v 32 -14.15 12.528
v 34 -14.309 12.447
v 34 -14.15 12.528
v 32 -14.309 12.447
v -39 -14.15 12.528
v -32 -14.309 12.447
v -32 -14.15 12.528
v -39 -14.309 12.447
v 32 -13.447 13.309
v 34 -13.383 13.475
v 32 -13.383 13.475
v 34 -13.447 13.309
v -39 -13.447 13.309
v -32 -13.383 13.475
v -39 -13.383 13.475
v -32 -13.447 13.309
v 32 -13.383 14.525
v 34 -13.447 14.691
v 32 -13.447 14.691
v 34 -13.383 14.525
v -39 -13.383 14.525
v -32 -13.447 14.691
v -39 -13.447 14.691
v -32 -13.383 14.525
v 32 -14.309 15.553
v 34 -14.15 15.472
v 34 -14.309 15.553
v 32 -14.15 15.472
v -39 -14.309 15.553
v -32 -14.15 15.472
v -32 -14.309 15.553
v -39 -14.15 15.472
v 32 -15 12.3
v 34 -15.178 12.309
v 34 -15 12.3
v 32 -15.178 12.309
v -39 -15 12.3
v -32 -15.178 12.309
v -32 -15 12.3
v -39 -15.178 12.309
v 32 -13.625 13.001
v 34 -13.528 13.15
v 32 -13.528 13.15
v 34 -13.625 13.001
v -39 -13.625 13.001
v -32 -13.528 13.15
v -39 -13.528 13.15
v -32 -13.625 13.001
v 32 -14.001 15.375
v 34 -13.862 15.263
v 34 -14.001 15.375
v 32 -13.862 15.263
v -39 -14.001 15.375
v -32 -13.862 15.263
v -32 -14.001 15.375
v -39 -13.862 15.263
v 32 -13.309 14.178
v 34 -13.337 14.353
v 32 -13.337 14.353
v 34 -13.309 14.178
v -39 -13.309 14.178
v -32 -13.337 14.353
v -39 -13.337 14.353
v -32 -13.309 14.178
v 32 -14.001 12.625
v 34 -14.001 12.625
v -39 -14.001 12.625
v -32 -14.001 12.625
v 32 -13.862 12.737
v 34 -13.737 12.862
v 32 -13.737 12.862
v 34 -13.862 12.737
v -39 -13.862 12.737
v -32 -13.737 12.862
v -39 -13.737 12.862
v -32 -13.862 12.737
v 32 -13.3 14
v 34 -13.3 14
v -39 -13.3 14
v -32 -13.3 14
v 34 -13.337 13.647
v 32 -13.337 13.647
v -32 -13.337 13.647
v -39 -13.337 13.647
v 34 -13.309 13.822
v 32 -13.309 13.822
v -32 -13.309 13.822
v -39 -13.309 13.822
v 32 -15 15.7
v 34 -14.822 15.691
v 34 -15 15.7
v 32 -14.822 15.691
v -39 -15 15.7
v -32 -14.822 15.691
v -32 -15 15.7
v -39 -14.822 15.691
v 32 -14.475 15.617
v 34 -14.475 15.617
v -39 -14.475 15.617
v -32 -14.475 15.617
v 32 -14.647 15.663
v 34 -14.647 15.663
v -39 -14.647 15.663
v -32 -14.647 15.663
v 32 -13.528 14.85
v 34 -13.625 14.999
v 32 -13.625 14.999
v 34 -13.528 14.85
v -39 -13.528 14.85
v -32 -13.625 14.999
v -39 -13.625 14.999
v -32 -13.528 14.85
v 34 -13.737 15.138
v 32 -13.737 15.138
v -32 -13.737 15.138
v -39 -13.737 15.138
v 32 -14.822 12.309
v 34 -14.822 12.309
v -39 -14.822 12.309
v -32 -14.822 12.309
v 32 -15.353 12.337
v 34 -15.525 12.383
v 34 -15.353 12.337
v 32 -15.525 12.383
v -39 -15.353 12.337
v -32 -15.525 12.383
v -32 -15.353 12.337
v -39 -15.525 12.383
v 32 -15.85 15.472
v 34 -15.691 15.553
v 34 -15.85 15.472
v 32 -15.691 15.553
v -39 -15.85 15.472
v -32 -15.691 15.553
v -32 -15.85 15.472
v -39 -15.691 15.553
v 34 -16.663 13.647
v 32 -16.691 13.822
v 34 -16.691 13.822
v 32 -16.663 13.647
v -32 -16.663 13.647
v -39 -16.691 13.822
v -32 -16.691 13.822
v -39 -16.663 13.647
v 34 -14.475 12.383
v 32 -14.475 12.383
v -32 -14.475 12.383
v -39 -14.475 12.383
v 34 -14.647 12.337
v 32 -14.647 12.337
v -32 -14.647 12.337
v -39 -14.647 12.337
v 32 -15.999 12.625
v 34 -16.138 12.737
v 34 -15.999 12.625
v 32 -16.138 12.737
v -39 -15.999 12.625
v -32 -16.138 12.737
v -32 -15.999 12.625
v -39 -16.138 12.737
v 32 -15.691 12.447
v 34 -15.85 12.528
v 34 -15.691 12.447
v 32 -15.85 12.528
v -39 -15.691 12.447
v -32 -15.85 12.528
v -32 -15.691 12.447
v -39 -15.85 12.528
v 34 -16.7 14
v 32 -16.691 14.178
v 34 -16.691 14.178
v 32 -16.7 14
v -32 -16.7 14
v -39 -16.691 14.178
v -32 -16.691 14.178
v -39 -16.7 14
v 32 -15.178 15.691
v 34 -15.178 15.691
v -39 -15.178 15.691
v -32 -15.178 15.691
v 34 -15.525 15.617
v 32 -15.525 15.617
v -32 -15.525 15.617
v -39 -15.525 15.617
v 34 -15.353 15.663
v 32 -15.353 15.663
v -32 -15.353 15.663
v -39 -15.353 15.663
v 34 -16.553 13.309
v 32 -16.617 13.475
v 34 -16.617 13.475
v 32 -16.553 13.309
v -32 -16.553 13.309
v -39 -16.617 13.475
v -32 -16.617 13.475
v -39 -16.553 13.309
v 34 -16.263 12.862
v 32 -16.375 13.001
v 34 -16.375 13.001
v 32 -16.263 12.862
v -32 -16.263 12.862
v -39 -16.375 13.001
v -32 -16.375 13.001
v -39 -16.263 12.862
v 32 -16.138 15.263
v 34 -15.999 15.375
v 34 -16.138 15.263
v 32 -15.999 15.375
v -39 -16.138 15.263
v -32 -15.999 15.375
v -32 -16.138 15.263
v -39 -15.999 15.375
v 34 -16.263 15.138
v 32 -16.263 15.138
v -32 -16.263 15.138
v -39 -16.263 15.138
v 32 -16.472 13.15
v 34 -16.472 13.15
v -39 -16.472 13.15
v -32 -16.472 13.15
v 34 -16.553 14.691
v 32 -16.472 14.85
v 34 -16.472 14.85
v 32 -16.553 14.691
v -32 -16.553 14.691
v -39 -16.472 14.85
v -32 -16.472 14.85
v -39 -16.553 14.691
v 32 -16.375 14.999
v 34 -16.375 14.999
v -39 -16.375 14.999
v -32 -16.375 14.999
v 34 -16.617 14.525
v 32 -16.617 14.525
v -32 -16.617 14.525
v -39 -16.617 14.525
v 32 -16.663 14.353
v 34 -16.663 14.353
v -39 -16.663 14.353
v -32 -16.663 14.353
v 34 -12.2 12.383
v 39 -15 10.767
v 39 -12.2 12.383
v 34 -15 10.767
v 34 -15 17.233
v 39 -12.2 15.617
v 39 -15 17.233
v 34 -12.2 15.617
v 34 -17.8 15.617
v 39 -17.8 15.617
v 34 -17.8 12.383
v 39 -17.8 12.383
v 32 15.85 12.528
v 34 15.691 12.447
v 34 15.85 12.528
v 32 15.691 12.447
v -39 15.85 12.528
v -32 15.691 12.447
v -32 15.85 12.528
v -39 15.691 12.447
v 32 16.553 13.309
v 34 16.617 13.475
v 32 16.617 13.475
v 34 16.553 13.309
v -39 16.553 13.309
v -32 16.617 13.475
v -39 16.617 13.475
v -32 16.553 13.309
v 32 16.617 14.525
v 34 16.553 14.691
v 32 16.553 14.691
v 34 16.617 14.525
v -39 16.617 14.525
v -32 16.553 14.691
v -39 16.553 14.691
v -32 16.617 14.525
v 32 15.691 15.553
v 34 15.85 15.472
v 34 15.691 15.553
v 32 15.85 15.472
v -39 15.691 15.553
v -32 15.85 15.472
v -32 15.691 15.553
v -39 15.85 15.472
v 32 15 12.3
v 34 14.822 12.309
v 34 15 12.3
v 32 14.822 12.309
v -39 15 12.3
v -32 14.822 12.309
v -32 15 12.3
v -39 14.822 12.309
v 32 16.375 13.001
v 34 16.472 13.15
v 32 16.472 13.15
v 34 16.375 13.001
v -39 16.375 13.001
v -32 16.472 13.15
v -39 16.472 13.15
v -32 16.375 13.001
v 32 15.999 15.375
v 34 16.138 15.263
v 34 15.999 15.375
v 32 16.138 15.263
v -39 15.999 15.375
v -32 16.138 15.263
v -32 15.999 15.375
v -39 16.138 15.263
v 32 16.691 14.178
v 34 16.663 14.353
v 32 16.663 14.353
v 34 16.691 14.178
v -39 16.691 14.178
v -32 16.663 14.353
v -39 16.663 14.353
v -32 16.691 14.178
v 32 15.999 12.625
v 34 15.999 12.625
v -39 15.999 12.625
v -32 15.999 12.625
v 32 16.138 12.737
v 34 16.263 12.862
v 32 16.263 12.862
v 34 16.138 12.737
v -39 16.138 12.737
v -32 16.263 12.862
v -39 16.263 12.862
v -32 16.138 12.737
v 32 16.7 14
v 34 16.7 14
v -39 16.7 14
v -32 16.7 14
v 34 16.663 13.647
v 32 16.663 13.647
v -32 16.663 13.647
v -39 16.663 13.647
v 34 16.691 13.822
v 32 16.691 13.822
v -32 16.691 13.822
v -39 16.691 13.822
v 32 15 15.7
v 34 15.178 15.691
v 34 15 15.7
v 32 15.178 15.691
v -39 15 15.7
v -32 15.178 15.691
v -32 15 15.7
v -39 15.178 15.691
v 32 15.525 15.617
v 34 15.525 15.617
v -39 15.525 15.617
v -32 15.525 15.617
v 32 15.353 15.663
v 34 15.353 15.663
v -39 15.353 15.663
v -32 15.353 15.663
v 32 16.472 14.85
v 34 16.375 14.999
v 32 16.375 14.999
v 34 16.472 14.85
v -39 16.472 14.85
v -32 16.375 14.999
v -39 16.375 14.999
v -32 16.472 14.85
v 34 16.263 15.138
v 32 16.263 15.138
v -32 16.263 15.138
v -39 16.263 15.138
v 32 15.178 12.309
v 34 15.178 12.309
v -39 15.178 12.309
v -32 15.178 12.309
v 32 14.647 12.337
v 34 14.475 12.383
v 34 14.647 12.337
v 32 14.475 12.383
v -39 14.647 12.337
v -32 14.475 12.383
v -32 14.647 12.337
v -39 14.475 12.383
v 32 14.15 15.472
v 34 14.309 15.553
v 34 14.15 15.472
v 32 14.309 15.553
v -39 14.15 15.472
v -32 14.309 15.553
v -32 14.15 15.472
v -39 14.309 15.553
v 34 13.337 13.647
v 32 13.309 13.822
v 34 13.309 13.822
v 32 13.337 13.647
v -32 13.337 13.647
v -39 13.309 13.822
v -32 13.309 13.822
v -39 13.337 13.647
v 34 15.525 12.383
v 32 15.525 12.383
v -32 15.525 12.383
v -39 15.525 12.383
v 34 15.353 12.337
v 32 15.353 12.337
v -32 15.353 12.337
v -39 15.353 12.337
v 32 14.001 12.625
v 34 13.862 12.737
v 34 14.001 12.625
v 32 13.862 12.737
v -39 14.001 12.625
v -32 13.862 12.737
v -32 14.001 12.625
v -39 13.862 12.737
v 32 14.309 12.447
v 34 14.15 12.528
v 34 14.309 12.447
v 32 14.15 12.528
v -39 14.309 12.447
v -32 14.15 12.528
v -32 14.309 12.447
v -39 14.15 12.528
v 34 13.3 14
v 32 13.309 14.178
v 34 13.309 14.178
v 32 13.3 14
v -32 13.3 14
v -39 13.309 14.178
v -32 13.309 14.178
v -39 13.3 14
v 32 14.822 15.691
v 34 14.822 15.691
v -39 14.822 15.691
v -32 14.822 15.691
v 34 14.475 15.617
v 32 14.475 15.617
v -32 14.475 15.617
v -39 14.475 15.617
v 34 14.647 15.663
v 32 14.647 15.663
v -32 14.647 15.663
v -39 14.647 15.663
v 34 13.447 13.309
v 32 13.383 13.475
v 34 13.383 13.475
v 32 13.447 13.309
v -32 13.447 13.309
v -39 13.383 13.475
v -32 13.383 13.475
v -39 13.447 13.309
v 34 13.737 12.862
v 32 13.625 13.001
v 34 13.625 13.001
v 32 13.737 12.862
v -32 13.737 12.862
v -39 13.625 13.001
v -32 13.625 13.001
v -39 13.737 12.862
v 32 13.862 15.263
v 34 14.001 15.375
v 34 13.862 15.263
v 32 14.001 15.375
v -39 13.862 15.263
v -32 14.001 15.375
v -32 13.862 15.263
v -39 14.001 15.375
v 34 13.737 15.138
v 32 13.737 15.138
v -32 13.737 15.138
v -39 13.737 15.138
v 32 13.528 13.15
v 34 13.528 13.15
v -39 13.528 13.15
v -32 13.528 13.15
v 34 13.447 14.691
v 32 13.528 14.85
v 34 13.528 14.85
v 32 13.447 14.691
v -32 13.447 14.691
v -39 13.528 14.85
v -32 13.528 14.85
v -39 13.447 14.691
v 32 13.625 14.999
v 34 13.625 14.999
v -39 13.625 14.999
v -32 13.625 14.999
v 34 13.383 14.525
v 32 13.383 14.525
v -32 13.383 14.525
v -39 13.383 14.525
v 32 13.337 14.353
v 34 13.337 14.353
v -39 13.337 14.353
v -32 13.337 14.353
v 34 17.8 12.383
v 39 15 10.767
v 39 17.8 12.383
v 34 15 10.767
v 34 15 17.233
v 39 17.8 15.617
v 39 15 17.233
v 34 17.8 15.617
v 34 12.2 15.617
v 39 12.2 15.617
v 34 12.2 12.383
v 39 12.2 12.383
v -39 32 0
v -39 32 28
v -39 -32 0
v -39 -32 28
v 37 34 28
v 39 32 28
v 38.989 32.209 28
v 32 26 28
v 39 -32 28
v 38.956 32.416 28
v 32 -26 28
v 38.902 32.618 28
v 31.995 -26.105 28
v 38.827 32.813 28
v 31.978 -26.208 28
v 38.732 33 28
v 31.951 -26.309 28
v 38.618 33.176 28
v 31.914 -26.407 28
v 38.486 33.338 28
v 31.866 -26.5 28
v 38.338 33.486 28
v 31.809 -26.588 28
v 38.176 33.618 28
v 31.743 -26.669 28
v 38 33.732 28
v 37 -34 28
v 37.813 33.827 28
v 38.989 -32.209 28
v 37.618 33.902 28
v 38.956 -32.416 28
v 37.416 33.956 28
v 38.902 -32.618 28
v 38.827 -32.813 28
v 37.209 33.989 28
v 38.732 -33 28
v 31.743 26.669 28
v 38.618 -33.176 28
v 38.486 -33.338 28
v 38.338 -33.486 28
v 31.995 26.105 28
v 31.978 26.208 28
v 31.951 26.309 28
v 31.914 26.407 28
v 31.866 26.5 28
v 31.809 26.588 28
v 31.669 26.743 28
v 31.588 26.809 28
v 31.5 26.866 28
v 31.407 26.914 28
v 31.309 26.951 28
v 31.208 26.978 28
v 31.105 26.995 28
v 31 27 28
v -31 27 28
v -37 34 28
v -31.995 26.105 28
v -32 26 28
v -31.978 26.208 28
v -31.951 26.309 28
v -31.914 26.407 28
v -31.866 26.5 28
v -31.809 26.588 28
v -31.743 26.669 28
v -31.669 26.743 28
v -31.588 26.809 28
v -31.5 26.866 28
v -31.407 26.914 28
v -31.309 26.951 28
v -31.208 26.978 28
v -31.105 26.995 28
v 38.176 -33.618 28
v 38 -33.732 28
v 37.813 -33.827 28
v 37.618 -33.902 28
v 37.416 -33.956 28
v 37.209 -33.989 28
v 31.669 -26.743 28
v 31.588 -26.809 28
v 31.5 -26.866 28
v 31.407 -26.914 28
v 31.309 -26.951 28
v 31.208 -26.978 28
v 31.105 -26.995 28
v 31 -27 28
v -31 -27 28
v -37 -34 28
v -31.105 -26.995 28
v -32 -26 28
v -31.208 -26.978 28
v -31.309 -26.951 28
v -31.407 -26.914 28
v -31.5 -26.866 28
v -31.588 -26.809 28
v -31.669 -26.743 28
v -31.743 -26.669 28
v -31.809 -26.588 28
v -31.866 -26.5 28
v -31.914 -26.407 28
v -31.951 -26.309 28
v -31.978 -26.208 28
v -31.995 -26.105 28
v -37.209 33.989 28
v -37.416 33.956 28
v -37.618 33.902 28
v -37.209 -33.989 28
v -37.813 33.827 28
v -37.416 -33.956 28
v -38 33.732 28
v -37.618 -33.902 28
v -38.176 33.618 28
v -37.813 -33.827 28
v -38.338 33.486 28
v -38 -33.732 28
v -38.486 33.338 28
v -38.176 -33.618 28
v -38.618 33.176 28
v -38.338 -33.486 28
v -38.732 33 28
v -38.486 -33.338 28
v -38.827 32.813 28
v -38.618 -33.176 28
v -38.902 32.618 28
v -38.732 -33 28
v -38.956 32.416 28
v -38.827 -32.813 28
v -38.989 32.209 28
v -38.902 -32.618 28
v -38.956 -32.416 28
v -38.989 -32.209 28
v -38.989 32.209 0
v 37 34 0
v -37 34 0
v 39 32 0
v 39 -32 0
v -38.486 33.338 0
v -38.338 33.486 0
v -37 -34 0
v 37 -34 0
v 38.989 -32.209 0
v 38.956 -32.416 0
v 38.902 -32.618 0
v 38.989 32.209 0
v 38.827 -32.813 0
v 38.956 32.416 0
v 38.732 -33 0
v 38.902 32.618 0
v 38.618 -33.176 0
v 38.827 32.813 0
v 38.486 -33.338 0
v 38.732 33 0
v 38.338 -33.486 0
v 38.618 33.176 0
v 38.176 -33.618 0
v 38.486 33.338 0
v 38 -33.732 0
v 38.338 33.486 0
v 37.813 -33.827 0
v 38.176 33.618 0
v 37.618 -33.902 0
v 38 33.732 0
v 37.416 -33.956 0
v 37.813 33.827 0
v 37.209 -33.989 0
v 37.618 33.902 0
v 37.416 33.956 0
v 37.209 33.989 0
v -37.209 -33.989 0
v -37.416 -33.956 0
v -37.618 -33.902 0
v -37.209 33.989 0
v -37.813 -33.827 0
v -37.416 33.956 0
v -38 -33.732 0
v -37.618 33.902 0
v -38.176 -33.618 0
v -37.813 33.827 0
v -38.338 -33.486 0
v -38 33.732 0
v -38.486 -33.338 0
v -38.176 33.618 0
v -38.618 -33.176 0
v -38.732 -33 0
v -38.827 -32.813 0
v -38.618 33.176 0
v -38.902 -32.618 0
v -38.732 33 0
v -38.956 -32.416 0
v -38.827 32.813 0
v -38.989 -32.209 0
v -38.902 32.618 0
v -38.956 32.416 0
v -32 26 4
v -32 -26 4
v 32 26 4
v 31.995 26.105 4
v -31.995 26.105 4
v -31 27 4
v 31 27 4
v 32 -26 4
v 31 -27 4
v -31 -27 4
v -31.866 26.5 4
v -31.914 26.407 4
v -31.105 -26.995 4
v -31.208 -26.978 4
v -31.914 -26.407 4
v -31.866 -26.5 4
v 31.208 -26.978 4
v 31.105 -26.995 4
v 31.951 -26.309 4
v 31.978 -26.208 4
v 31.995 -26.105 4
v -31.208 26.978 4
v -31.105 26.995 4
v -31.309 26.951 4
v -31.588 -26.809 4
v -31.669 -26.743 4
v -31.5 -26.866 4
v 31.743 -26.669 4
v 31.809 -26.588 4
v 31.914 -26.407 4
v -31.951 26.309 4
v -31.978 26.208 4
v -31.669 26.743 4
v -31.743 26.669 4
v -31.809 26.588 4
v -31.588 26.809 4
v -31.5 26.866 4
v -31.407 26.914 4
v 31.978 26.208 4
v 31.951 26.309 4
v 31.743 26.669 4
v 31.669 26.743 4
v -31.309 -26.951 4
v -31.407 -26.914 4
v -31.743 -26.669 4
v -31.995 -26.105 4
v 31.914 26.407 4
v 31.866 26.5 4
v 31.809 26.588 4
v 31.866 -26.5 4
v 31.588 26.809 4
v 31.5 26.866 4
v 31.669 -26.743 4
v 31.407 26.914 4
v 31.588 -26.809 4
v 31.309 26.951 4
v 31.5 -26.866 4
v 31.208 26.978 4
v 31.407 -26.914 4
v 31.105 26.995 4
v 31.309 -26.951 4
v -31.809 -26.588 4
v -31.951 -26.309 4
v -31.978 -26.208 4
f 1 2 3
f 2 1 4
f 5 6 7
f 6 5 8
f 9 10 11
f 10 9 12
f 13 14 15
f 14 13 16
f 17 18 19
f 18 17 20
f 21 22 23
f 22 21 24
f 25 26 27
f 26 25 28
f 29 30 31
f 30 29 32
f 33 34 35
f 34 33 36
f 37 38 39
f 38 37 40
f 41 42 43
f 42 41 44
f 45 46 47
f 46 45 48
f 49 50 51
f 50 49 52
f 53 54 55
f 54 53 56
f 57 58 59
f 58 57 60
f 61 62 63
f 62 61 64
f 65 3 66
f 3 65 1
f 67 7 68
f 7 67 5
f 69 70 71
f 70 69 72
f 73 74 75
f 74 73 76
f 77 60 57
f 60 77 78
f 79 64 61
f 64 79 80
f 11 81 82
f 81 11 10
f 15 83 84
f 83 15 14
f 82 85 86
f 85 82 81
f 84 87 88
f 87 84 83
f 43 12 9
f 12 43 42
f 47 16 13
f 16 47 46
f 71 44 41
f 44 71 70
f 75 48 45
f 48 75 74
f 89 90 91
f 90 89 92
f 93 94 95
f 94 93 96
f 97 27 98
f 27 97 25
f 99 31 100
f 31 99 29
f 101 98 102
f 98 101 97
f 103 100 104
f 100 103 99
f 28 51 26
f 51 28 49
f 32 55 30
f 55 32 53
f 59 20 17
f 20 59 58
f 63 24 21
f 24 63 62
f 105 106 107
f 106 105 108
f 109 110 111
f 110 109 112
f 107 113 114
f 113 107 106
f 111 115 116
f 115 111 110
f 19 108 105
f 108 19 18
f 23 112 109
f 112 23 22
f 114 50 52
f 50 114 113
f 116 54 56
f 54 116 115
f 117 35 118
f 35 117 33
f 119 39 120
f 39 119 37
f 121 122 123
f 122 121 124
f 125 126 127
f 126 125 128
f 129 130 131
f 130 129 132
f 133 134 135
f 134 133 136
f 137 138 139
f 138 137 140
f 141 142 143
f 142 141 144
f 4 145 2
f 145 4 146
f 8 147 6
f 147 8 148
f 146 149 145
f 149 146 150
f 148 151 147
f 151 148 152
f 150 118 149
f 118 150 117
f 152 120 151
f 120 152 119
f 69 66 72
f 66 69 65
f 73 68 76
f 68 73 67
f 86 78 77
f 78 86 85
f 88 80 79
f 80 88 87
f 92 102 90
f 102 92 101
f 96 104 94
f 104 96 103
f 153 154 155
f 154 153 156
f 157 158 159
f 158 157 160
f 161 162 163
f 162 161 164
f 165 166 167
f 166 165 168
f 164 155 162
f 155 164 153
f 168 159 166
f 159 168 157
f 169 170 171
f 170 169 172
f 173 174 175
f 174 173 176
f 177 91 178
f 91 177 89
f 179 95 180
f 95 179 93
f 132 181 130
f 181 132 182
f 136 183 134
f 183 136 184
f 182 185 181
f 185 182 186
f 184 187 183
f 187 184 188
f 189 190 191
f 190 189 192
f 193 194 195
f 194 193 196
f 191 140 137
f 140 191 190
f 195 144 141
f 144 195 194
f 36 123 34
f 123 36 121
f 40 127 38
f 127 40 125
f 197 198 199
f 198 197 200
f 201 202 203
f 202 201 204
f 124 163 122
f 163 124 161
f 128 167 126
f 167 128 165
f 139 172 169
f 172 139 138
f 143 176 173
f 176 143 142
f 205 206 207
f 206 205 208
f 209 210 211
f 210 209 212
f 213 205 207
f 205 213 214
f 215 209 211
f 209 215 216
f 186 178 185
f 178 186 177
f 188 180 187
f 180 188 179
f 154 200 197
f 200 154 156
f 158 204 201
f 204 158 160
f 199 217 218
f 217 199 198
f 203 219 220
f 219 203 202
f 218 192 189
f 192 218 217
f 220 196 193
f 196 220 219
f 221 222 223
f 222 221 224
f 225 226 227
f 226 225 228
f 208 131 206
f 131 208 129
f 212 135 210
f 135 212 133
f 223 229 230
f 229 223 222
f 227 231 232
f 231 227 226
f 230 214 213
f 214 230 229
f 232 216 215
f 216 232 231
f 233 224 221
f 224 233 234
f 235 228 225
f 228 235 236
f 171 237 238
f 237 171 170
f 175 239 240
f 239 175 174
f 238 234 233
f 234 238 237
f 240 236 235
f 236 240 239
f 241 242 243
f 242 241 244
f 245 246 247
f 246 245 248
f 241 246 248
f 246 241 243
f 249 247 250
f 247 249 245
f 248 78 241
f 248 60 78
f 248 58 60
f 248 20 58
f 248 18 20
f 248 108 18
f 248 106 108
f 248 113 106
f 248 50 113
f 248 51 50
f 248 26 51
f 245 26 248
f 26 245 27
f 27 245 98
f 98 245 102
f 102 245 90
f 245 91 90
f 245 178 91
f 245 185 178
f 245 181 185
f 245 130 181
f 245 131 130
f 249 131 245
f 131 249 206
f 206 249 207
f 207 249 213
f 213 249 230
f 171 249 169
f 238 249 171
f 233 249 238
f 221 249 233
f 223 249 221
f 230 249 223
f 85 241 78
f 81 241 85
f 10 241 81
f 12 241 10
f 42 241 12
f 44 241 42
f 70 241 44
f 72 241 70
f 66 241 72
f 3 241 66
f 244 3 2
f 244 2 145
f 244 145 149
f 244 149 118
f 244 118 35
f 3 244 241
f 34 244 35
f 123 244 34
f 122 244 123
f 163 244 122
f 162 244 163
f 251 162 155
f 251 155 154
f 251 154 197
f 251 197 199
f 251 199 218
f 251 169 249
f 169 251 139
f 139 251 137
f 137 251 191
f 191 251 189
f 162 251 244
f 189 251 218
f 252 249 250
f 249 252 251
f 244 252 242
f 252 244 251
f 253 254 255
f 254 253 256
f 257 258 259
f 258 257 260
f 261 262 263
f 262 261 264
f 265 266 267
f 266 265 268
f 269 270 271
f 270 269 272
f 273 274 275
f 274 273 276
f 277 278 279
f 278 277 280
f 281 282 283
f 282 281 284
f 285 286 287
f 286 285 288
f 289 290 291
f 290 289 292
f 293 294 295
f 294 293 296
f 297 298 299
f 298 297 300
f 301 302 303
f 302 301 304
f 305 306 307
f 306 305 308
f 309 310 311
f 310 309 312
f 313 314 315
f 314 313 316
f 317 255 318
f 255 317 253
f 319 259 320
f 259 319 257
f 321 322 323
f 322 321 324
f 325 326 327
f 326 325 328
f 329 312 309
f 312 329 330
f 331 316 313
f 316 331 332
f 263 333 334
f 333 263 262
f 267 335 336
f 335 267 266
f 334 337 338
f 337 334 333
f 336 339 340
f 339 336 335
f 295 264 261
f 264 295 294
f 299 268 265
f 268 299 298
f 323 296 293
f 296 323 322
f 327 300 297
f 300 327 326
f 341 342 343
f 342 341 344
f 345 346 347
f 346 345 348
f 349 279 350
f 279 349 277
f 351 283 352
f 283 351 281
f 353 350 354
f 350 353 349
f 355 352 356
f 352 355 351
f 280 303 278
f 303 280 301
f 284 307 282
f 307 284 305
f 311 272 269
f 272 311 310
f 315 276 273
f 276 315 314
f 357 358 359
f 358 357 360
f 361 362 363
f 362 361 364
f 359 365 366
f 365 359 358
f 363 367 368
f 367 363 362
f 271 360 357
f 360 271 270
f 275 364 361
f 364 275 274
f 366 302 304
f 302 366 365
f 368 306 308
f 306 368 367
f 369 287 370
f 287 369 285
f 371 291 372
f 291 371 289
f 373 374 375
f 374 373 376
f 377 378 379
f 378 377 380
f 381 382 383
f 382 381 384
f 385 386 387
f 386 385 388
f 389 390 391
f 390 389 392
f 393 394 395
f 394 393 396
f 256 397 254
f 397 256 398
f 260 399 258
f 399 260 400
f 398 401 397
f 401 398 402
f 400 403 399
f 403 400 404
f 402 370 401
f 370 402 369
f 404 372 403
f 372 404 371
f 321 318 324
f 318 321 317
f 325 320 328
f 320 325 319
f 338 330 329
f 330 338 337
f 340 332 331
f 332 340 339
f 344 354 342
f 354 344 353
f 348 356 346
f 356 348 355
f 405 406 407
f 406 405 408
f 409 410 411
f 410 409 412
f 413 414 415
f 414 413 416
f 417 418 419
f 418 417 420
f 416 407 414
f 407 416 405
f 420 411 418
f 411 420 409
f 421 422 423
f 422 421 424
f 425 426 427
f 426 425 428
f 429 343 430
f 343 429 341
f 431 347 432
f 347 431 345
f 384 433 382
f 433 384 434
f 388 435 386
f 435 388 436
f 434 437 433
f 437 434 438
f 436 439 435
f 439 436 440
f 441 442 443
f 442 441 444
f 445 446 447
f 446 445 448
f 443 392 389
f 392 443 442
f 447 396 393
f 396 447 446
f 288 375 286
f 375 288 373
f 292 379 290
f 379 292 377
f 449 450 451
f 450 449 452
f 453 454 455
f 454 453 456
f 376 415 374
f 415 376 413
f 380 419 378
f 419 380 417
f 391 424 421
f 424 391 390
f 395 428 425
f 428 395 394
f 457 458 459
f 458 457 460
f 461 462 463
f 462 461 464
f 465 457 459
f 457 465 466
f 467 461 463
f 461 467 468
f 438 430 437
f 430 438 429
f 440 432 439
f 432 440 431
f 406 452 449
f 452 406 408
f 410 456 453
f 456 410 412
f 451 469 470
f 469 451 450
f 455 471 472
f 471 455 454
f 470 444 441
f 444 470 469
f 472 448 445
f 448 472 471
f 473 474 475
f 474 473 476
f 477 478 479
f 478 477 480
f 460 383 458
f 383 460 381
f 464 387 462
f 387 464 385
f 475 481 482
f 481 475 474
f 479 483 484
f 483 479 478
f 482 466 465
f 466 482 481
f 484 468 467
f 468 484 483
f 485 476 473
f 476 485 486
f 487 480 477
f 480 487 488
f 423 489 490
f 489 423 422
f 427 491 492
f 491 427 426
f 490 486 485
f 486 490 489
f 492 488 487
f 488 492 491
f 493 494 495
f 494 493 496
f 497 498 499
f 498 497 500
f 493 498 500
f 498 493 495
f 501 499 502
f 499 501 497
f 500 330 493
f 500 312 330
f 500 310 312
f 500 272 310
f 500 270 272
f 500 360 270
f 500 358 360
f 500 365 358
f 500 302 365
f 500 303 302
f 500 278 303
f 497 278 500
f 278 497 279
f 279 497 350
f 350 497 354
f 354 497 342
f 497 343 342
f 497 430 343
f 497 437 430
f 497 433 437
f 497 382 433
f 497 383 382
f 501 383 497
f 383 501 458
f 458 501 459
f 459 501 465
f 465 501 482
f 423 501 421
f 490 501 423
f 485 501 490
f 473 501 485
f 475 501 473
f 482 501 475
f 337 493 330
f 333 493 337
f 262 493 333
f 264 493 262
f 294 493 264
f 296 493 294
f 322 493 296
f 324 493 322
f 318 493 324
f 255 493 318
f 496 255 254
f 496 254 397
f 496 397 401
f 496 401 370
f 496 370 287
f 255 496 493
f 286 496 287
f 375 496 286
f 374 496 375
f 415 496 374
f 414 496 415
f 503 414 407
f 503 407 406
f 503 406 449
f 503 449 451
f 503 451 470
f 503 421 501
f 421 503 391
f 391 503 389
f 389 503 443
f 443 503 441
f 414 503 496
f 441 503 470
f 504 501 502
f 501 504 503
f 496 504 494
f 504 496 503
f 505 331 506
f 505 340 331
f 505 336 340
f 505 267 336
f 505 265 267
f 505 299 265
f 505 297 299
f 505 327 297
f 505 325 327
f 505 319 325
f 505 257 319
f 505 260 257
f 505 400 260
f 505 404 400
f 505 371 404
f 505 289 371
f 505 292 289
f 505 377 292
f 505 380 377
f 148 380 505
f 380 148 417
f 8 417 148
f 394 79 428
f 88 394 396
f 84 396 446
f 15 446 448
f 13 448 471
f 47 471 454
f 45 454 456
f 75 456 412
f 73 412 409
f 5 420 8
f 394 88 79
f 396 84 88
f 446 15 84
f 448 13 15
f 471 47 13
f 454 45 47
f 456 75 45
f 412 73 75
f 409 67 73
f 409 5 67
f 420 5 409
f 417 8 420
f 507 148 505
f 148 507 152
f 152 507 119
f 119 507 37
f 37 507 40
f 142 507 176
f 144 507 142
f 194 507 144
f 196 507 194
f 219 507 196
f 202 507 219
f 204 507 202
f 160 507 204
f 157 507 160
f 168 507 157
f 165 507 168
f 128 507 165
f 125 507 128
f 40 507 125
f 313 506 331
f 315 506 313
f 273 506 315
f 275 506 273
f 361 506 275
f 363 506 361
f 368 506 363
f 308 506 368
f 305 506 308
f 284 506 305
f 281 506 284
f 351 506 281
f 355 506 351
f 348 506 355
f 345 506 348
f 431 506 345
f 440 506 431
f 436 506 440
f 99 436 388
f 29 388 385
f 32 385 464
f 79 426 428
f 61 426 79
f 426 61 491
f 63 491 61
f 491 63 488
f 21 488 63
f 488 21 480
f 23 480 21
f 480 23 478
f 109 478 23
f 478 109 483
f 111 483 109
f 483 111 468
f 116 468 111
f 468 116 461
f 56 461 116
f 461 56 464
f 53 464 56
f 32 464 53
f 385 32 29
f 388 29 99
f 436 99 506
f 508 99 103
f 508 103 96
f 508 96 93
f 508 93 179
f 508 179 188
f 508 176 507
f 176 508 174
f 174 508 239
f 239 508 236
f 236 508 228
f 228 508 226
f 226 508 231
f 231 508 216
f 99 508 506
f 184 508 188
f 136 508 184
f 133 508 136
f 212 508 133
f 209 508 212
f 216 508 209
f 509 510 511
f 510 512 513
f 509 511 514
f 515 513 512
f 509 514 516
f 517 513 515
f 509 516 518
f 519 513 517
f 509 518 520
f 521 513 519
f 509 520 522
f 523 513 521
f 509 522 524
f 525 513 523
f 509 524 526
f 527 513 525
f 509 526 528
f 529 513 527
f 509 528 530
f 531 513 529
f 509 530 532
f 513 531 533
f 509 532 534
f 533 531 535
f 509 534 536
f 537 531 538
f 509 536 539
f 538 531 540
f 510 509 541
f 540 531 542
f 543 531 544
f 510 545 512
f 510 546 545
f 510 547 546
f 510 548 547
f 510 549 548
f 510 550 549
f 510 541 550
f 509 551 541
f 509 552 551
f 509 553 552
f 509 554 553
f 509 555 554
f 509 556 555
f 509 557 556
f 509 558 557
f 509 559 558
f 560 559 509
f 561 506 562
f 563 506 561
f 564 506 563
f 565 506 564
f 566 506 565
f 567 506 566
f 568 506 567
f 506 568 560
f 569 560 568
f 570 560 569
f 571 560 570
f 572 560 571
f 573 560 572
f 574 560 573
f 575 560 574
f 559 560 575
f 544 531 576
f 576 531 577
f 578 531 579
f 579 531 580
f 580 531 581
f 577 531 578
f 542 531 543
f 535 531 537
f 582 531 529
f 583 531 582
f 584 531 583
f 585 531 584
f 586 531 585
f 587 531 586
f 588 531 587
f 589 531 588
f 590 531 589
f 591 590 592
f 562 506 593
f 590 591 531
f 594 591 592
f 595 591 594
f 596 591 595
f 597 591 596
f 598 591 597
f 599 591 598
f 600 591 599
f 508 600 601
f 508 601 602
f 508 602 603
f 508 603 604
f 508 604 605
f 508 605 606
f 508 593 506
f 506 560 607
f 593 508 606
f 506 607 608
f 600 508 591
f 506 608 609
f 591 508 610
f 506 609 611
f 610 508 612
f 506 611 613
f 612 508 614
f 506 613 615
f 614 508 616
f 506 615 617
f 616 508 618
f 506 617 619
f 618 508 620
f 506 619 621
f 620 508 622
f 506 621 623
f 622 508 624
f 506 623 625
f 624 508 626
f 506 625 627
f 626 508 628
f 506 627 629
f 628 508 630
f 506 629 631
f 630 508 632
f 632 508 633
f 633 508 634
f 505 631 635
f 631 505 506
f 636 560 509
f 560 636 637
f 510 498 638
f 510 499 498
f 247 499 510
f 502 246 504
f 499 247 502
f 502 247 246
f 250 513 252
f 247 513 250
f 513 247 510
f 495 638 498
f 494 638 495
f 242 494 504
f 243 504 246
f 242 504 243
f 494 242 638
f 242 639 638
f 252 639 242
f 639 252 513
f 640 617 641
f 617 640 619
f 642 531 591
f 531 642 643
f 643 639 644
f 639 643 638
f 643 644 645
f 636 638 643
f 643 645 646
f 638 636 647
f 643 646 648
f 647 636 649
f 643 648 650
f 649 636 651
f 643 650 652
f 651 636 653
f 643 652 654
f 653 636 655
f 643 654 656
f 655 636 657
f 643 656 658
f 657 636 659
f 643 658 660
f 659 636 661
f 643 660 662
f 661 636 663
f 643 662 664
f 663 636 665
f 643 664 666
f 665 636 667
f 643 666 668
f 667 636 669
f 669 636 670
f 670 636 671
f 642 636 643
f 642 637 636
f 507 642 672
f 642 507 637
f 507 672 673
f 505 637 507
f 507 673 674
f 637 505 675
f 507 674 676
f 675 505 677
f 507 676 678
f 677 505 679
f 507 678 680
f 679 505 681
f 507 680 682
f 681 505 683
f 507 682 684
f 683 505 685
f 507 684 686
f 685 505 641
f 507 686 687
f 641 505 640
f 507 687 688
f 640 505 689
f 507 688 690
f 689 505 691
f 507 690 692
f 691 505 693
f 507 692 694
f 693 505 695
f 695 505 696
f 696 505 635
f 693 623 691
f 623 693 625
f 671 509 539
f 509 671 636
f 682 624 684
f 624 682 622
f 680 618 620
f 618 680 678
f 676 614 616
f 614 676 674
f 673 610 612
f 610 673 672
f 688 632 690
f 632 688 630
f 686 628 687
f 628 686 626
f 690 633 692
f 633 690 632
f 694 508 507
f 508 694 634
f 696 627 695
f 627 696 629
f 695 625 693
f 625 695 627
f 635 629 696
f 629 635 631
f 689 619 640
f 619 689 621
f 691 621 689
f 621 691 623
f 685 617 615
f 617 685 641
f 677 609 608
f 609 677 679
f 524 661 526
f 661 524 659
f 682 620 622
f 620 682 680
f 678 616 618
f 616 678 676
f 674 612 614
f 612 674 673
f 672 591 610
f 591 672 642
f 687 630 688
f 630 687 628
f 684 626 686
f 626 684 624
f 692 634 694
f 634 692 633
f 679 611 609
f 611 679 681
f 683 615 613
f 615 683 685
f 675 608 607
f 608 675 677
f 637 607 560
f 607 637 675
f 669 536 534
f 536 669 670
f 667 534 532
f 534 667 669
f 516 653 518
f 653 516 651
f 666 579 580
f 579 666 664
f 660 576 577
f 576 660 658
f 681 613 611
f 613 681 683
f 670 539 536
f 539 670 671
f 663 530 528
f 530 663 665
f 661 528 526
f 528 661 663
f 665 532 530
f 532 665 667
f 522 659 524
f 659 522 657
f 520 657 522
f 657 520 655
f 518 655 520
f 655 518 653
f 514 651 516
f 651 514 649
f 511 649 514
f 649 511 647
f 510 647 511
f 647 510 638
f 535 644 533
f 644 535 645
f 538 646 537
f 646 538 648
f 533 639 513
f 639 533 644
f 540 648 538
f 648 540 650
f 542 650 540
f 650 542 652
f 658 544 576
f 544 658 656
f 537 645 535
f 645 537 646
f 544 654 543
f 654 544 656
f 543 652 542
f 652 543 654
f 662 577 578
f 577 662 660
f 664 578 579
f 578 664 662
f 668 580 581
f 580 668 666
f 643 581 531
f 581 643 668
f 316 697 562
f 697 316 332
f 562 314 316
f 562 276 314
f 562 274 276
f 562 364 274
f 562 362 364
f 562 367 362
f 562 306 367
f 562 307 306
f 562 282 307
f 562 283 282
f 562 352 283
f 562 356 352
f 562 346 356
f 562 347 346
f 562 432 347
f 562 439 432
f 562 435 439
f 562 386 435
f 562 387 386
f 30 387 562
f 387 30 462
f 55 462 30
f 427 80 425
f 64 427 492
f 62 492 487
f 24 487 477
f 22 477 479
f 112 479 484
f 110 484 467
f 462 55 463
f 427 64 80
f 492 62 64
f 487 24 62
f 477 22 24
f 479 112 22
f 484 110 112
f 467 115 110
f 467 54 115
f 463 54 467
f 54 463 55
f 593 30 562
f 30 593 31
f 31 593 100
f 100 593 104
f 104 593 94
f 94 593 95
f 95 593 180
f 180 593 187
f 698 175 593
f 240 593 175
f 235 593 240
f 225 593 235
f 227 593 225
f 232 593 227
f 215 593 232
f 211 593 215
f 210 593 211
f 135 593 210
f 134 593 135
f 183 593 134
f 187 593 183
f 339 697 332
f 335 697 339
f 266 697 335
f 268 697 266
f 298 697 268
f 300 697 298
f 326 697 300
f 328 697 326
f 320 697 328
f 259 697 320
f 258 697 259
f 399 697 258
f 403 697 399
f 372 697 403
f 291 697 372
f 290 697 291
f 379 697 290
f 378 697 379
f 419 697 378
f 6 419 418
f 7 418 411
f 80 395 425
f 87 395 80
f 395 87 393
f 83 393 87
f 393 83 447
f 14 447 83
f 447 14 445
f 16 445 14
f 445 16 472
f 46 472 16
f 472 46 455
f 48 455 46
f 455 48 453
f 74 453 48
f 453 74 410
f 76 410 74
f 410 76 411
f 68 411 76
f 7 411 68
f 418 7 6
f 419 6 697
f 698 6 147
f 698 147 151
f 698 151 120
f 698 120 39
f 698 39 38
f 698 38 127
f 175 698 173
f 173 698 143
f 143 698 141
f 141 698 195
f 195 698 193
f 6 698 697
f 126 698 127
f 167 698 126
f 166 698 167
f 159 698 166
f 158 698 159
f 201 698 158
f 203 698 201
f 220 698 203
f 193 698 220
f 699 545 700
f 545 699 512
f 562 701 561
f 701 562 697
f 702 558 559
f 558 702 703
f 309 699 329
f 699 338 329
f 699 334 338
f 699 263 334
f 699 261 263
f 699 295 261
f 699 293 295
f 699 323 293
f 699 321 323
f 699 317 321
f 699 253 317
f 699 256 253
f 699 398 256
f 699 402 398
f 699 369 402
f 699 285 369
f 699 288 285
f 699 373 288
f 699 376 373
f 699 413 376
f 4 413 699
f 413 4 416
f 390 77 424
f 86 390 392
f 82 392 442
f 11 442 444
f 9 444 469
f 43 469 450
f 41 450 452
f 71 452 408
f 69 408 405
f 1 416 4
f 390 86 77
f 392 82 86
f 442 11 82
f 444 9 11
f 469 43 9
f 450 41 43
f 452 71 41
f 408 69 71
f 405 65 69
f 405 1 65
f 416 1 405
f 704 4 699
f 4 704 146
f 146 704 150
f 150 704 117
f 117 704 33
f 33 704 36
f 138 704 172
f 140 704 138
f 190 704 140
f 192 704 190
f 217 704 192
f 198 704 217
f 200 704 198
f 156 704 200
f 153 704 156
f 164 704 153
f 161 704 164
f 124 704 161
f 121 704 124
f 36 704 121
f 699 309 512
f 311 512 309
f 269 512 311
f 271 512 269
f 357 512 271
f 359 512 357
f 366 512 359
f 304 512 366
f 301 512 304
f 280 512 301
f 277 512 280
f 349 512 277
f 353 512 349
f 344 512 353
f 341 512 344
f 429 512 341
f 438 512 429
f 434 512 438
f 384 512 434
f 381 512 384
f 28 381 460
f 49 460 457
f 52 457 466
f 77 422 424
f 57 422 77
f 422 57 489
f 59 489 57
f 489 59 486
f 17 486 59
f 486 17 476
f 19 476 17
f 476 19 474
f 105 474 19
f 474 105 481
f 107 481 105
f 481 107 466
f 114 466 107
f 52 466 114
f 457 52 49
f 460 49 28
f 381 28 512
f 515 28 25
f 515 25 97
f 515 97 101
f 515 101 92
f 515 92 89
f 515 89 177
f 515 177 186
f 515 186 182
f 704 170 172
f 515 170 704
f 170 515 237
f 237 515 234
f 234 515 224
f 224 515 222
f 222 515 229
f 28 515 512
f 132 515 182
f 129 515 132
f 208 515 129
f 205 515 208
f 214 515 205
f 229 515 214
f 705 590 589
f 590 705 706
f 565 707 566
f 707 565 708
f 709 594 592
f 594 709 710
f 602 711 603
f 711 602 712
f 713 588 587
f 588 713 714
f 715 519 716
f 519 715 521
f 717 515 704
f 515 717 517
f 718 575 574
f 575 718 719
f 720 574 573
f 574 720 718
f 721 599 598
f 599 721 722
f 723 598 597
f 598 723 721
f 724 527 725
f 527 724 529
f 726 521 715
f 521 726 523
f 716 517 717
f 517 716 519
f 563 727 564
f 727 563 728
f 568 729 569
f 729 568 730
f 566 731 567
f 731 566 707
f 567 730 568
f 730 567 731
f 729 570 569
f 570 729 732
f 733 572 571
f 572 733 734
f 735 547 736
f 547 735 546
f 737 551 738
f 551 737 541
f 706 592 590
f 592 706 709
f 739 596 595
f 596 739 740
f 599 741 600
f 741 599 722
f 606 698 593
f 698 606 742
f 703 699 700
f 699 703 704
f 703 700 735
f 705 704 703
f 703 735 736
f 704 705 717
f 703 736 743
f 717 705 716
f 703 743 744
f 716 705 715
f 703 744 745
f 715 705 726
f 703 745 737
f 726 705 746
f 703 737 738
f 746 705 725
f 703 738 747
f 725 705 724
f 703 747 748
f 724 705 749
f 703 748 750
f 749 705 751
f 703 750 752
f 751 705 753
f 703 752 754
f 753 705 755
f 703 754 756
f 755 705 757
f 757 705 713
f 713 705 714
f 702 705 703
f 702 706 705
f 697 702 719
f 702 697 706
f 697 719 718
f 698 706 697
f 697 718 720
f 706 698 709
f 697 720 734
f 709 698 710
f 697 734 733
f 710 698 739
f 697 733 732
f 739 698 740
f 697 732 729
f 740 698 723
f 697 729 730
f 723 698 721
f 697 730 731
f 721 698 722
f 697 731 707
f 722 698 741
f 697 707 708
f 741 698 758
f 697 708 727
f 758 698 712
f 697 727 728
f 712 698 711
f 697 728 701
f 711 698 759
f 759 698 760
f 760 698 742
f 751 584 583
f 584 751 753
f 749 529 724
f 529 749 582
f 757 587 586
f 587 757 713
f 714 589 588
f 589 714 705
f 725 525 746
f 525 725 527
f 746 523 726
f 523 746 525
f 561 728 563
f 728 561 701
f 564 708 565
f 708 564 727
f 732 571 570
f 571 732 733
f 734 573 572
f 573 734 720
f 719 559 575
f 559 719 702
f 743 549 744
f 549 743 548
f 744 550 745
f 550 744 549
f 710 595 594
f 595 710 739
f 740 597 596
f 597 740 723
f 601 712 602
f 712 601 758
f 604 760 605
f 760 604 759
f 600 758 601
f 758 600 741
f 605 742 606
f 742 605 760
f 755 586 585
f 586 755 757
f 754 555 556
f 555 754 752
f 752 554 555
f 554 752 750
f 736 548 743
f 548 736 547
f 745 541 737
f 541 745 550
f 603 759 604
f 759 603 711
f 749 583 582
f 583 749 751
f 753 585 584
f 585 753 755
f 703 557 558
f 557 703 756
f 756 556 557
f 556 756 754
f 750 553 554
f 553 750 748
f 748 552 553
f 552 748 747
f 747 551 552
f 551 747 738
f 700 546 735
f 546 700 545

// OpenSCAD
// Minimal reproduction of original outer_box WITHOUT any button changes
// to check whether Simple:no pre-existed my edits
shell_length = 78; shell_width = 68; shell_height = 28;
wall_thickness = 4; floor_thickness = 4;
internal_length = 64; internal_width = 54; internal_depth = 22;
dock_screw_diameter = 3.4;
dock_nut_flat = 5.6;
dock_nut_pocket_depth = 2.6;
fillet_outer = 2.0; fillet_inner = 1.0;
$fn = 60;

module rounded_box(l, w, h, r) {
    hull() {
        translate([-l/2+r,-w/2+r,0]) cylinder(r=r,h=h);
        translate([ l/2-r,-w/2+r,0]) cylinder(r=r,h=h);
        translate([-l/2+r, w/2-r,0]) cylinder(r=r,h=h);
        translate([ l/2-r, w/2-r,0]) cylinder(r=r,h=h);
    }
}

module docking_screw_holes() {
    for(y_offset = [-15, 15]) {
        translate([0, y_offset, shell_height/2])
        rotate([0, 90, 0]) {
            cylinder(d=dock_screw_diameter, h=shell_length + 20, center=true);
            translate([0, 0, shell_length/2 - 5])
                cylinder(d=dock_nut_flat/cos(30), h=dock_nut_pocket_depth+5, $fn=6);
        }
    }
}

difference() {
    rounded_box(shell_length, shell_width, shell_height, fillet_outer);
    translate([0,0,floor_thickness])
        rounded_box(internal_length, internal_width, shell_height, fillet_inner);
    docking_screw_holes();
}
